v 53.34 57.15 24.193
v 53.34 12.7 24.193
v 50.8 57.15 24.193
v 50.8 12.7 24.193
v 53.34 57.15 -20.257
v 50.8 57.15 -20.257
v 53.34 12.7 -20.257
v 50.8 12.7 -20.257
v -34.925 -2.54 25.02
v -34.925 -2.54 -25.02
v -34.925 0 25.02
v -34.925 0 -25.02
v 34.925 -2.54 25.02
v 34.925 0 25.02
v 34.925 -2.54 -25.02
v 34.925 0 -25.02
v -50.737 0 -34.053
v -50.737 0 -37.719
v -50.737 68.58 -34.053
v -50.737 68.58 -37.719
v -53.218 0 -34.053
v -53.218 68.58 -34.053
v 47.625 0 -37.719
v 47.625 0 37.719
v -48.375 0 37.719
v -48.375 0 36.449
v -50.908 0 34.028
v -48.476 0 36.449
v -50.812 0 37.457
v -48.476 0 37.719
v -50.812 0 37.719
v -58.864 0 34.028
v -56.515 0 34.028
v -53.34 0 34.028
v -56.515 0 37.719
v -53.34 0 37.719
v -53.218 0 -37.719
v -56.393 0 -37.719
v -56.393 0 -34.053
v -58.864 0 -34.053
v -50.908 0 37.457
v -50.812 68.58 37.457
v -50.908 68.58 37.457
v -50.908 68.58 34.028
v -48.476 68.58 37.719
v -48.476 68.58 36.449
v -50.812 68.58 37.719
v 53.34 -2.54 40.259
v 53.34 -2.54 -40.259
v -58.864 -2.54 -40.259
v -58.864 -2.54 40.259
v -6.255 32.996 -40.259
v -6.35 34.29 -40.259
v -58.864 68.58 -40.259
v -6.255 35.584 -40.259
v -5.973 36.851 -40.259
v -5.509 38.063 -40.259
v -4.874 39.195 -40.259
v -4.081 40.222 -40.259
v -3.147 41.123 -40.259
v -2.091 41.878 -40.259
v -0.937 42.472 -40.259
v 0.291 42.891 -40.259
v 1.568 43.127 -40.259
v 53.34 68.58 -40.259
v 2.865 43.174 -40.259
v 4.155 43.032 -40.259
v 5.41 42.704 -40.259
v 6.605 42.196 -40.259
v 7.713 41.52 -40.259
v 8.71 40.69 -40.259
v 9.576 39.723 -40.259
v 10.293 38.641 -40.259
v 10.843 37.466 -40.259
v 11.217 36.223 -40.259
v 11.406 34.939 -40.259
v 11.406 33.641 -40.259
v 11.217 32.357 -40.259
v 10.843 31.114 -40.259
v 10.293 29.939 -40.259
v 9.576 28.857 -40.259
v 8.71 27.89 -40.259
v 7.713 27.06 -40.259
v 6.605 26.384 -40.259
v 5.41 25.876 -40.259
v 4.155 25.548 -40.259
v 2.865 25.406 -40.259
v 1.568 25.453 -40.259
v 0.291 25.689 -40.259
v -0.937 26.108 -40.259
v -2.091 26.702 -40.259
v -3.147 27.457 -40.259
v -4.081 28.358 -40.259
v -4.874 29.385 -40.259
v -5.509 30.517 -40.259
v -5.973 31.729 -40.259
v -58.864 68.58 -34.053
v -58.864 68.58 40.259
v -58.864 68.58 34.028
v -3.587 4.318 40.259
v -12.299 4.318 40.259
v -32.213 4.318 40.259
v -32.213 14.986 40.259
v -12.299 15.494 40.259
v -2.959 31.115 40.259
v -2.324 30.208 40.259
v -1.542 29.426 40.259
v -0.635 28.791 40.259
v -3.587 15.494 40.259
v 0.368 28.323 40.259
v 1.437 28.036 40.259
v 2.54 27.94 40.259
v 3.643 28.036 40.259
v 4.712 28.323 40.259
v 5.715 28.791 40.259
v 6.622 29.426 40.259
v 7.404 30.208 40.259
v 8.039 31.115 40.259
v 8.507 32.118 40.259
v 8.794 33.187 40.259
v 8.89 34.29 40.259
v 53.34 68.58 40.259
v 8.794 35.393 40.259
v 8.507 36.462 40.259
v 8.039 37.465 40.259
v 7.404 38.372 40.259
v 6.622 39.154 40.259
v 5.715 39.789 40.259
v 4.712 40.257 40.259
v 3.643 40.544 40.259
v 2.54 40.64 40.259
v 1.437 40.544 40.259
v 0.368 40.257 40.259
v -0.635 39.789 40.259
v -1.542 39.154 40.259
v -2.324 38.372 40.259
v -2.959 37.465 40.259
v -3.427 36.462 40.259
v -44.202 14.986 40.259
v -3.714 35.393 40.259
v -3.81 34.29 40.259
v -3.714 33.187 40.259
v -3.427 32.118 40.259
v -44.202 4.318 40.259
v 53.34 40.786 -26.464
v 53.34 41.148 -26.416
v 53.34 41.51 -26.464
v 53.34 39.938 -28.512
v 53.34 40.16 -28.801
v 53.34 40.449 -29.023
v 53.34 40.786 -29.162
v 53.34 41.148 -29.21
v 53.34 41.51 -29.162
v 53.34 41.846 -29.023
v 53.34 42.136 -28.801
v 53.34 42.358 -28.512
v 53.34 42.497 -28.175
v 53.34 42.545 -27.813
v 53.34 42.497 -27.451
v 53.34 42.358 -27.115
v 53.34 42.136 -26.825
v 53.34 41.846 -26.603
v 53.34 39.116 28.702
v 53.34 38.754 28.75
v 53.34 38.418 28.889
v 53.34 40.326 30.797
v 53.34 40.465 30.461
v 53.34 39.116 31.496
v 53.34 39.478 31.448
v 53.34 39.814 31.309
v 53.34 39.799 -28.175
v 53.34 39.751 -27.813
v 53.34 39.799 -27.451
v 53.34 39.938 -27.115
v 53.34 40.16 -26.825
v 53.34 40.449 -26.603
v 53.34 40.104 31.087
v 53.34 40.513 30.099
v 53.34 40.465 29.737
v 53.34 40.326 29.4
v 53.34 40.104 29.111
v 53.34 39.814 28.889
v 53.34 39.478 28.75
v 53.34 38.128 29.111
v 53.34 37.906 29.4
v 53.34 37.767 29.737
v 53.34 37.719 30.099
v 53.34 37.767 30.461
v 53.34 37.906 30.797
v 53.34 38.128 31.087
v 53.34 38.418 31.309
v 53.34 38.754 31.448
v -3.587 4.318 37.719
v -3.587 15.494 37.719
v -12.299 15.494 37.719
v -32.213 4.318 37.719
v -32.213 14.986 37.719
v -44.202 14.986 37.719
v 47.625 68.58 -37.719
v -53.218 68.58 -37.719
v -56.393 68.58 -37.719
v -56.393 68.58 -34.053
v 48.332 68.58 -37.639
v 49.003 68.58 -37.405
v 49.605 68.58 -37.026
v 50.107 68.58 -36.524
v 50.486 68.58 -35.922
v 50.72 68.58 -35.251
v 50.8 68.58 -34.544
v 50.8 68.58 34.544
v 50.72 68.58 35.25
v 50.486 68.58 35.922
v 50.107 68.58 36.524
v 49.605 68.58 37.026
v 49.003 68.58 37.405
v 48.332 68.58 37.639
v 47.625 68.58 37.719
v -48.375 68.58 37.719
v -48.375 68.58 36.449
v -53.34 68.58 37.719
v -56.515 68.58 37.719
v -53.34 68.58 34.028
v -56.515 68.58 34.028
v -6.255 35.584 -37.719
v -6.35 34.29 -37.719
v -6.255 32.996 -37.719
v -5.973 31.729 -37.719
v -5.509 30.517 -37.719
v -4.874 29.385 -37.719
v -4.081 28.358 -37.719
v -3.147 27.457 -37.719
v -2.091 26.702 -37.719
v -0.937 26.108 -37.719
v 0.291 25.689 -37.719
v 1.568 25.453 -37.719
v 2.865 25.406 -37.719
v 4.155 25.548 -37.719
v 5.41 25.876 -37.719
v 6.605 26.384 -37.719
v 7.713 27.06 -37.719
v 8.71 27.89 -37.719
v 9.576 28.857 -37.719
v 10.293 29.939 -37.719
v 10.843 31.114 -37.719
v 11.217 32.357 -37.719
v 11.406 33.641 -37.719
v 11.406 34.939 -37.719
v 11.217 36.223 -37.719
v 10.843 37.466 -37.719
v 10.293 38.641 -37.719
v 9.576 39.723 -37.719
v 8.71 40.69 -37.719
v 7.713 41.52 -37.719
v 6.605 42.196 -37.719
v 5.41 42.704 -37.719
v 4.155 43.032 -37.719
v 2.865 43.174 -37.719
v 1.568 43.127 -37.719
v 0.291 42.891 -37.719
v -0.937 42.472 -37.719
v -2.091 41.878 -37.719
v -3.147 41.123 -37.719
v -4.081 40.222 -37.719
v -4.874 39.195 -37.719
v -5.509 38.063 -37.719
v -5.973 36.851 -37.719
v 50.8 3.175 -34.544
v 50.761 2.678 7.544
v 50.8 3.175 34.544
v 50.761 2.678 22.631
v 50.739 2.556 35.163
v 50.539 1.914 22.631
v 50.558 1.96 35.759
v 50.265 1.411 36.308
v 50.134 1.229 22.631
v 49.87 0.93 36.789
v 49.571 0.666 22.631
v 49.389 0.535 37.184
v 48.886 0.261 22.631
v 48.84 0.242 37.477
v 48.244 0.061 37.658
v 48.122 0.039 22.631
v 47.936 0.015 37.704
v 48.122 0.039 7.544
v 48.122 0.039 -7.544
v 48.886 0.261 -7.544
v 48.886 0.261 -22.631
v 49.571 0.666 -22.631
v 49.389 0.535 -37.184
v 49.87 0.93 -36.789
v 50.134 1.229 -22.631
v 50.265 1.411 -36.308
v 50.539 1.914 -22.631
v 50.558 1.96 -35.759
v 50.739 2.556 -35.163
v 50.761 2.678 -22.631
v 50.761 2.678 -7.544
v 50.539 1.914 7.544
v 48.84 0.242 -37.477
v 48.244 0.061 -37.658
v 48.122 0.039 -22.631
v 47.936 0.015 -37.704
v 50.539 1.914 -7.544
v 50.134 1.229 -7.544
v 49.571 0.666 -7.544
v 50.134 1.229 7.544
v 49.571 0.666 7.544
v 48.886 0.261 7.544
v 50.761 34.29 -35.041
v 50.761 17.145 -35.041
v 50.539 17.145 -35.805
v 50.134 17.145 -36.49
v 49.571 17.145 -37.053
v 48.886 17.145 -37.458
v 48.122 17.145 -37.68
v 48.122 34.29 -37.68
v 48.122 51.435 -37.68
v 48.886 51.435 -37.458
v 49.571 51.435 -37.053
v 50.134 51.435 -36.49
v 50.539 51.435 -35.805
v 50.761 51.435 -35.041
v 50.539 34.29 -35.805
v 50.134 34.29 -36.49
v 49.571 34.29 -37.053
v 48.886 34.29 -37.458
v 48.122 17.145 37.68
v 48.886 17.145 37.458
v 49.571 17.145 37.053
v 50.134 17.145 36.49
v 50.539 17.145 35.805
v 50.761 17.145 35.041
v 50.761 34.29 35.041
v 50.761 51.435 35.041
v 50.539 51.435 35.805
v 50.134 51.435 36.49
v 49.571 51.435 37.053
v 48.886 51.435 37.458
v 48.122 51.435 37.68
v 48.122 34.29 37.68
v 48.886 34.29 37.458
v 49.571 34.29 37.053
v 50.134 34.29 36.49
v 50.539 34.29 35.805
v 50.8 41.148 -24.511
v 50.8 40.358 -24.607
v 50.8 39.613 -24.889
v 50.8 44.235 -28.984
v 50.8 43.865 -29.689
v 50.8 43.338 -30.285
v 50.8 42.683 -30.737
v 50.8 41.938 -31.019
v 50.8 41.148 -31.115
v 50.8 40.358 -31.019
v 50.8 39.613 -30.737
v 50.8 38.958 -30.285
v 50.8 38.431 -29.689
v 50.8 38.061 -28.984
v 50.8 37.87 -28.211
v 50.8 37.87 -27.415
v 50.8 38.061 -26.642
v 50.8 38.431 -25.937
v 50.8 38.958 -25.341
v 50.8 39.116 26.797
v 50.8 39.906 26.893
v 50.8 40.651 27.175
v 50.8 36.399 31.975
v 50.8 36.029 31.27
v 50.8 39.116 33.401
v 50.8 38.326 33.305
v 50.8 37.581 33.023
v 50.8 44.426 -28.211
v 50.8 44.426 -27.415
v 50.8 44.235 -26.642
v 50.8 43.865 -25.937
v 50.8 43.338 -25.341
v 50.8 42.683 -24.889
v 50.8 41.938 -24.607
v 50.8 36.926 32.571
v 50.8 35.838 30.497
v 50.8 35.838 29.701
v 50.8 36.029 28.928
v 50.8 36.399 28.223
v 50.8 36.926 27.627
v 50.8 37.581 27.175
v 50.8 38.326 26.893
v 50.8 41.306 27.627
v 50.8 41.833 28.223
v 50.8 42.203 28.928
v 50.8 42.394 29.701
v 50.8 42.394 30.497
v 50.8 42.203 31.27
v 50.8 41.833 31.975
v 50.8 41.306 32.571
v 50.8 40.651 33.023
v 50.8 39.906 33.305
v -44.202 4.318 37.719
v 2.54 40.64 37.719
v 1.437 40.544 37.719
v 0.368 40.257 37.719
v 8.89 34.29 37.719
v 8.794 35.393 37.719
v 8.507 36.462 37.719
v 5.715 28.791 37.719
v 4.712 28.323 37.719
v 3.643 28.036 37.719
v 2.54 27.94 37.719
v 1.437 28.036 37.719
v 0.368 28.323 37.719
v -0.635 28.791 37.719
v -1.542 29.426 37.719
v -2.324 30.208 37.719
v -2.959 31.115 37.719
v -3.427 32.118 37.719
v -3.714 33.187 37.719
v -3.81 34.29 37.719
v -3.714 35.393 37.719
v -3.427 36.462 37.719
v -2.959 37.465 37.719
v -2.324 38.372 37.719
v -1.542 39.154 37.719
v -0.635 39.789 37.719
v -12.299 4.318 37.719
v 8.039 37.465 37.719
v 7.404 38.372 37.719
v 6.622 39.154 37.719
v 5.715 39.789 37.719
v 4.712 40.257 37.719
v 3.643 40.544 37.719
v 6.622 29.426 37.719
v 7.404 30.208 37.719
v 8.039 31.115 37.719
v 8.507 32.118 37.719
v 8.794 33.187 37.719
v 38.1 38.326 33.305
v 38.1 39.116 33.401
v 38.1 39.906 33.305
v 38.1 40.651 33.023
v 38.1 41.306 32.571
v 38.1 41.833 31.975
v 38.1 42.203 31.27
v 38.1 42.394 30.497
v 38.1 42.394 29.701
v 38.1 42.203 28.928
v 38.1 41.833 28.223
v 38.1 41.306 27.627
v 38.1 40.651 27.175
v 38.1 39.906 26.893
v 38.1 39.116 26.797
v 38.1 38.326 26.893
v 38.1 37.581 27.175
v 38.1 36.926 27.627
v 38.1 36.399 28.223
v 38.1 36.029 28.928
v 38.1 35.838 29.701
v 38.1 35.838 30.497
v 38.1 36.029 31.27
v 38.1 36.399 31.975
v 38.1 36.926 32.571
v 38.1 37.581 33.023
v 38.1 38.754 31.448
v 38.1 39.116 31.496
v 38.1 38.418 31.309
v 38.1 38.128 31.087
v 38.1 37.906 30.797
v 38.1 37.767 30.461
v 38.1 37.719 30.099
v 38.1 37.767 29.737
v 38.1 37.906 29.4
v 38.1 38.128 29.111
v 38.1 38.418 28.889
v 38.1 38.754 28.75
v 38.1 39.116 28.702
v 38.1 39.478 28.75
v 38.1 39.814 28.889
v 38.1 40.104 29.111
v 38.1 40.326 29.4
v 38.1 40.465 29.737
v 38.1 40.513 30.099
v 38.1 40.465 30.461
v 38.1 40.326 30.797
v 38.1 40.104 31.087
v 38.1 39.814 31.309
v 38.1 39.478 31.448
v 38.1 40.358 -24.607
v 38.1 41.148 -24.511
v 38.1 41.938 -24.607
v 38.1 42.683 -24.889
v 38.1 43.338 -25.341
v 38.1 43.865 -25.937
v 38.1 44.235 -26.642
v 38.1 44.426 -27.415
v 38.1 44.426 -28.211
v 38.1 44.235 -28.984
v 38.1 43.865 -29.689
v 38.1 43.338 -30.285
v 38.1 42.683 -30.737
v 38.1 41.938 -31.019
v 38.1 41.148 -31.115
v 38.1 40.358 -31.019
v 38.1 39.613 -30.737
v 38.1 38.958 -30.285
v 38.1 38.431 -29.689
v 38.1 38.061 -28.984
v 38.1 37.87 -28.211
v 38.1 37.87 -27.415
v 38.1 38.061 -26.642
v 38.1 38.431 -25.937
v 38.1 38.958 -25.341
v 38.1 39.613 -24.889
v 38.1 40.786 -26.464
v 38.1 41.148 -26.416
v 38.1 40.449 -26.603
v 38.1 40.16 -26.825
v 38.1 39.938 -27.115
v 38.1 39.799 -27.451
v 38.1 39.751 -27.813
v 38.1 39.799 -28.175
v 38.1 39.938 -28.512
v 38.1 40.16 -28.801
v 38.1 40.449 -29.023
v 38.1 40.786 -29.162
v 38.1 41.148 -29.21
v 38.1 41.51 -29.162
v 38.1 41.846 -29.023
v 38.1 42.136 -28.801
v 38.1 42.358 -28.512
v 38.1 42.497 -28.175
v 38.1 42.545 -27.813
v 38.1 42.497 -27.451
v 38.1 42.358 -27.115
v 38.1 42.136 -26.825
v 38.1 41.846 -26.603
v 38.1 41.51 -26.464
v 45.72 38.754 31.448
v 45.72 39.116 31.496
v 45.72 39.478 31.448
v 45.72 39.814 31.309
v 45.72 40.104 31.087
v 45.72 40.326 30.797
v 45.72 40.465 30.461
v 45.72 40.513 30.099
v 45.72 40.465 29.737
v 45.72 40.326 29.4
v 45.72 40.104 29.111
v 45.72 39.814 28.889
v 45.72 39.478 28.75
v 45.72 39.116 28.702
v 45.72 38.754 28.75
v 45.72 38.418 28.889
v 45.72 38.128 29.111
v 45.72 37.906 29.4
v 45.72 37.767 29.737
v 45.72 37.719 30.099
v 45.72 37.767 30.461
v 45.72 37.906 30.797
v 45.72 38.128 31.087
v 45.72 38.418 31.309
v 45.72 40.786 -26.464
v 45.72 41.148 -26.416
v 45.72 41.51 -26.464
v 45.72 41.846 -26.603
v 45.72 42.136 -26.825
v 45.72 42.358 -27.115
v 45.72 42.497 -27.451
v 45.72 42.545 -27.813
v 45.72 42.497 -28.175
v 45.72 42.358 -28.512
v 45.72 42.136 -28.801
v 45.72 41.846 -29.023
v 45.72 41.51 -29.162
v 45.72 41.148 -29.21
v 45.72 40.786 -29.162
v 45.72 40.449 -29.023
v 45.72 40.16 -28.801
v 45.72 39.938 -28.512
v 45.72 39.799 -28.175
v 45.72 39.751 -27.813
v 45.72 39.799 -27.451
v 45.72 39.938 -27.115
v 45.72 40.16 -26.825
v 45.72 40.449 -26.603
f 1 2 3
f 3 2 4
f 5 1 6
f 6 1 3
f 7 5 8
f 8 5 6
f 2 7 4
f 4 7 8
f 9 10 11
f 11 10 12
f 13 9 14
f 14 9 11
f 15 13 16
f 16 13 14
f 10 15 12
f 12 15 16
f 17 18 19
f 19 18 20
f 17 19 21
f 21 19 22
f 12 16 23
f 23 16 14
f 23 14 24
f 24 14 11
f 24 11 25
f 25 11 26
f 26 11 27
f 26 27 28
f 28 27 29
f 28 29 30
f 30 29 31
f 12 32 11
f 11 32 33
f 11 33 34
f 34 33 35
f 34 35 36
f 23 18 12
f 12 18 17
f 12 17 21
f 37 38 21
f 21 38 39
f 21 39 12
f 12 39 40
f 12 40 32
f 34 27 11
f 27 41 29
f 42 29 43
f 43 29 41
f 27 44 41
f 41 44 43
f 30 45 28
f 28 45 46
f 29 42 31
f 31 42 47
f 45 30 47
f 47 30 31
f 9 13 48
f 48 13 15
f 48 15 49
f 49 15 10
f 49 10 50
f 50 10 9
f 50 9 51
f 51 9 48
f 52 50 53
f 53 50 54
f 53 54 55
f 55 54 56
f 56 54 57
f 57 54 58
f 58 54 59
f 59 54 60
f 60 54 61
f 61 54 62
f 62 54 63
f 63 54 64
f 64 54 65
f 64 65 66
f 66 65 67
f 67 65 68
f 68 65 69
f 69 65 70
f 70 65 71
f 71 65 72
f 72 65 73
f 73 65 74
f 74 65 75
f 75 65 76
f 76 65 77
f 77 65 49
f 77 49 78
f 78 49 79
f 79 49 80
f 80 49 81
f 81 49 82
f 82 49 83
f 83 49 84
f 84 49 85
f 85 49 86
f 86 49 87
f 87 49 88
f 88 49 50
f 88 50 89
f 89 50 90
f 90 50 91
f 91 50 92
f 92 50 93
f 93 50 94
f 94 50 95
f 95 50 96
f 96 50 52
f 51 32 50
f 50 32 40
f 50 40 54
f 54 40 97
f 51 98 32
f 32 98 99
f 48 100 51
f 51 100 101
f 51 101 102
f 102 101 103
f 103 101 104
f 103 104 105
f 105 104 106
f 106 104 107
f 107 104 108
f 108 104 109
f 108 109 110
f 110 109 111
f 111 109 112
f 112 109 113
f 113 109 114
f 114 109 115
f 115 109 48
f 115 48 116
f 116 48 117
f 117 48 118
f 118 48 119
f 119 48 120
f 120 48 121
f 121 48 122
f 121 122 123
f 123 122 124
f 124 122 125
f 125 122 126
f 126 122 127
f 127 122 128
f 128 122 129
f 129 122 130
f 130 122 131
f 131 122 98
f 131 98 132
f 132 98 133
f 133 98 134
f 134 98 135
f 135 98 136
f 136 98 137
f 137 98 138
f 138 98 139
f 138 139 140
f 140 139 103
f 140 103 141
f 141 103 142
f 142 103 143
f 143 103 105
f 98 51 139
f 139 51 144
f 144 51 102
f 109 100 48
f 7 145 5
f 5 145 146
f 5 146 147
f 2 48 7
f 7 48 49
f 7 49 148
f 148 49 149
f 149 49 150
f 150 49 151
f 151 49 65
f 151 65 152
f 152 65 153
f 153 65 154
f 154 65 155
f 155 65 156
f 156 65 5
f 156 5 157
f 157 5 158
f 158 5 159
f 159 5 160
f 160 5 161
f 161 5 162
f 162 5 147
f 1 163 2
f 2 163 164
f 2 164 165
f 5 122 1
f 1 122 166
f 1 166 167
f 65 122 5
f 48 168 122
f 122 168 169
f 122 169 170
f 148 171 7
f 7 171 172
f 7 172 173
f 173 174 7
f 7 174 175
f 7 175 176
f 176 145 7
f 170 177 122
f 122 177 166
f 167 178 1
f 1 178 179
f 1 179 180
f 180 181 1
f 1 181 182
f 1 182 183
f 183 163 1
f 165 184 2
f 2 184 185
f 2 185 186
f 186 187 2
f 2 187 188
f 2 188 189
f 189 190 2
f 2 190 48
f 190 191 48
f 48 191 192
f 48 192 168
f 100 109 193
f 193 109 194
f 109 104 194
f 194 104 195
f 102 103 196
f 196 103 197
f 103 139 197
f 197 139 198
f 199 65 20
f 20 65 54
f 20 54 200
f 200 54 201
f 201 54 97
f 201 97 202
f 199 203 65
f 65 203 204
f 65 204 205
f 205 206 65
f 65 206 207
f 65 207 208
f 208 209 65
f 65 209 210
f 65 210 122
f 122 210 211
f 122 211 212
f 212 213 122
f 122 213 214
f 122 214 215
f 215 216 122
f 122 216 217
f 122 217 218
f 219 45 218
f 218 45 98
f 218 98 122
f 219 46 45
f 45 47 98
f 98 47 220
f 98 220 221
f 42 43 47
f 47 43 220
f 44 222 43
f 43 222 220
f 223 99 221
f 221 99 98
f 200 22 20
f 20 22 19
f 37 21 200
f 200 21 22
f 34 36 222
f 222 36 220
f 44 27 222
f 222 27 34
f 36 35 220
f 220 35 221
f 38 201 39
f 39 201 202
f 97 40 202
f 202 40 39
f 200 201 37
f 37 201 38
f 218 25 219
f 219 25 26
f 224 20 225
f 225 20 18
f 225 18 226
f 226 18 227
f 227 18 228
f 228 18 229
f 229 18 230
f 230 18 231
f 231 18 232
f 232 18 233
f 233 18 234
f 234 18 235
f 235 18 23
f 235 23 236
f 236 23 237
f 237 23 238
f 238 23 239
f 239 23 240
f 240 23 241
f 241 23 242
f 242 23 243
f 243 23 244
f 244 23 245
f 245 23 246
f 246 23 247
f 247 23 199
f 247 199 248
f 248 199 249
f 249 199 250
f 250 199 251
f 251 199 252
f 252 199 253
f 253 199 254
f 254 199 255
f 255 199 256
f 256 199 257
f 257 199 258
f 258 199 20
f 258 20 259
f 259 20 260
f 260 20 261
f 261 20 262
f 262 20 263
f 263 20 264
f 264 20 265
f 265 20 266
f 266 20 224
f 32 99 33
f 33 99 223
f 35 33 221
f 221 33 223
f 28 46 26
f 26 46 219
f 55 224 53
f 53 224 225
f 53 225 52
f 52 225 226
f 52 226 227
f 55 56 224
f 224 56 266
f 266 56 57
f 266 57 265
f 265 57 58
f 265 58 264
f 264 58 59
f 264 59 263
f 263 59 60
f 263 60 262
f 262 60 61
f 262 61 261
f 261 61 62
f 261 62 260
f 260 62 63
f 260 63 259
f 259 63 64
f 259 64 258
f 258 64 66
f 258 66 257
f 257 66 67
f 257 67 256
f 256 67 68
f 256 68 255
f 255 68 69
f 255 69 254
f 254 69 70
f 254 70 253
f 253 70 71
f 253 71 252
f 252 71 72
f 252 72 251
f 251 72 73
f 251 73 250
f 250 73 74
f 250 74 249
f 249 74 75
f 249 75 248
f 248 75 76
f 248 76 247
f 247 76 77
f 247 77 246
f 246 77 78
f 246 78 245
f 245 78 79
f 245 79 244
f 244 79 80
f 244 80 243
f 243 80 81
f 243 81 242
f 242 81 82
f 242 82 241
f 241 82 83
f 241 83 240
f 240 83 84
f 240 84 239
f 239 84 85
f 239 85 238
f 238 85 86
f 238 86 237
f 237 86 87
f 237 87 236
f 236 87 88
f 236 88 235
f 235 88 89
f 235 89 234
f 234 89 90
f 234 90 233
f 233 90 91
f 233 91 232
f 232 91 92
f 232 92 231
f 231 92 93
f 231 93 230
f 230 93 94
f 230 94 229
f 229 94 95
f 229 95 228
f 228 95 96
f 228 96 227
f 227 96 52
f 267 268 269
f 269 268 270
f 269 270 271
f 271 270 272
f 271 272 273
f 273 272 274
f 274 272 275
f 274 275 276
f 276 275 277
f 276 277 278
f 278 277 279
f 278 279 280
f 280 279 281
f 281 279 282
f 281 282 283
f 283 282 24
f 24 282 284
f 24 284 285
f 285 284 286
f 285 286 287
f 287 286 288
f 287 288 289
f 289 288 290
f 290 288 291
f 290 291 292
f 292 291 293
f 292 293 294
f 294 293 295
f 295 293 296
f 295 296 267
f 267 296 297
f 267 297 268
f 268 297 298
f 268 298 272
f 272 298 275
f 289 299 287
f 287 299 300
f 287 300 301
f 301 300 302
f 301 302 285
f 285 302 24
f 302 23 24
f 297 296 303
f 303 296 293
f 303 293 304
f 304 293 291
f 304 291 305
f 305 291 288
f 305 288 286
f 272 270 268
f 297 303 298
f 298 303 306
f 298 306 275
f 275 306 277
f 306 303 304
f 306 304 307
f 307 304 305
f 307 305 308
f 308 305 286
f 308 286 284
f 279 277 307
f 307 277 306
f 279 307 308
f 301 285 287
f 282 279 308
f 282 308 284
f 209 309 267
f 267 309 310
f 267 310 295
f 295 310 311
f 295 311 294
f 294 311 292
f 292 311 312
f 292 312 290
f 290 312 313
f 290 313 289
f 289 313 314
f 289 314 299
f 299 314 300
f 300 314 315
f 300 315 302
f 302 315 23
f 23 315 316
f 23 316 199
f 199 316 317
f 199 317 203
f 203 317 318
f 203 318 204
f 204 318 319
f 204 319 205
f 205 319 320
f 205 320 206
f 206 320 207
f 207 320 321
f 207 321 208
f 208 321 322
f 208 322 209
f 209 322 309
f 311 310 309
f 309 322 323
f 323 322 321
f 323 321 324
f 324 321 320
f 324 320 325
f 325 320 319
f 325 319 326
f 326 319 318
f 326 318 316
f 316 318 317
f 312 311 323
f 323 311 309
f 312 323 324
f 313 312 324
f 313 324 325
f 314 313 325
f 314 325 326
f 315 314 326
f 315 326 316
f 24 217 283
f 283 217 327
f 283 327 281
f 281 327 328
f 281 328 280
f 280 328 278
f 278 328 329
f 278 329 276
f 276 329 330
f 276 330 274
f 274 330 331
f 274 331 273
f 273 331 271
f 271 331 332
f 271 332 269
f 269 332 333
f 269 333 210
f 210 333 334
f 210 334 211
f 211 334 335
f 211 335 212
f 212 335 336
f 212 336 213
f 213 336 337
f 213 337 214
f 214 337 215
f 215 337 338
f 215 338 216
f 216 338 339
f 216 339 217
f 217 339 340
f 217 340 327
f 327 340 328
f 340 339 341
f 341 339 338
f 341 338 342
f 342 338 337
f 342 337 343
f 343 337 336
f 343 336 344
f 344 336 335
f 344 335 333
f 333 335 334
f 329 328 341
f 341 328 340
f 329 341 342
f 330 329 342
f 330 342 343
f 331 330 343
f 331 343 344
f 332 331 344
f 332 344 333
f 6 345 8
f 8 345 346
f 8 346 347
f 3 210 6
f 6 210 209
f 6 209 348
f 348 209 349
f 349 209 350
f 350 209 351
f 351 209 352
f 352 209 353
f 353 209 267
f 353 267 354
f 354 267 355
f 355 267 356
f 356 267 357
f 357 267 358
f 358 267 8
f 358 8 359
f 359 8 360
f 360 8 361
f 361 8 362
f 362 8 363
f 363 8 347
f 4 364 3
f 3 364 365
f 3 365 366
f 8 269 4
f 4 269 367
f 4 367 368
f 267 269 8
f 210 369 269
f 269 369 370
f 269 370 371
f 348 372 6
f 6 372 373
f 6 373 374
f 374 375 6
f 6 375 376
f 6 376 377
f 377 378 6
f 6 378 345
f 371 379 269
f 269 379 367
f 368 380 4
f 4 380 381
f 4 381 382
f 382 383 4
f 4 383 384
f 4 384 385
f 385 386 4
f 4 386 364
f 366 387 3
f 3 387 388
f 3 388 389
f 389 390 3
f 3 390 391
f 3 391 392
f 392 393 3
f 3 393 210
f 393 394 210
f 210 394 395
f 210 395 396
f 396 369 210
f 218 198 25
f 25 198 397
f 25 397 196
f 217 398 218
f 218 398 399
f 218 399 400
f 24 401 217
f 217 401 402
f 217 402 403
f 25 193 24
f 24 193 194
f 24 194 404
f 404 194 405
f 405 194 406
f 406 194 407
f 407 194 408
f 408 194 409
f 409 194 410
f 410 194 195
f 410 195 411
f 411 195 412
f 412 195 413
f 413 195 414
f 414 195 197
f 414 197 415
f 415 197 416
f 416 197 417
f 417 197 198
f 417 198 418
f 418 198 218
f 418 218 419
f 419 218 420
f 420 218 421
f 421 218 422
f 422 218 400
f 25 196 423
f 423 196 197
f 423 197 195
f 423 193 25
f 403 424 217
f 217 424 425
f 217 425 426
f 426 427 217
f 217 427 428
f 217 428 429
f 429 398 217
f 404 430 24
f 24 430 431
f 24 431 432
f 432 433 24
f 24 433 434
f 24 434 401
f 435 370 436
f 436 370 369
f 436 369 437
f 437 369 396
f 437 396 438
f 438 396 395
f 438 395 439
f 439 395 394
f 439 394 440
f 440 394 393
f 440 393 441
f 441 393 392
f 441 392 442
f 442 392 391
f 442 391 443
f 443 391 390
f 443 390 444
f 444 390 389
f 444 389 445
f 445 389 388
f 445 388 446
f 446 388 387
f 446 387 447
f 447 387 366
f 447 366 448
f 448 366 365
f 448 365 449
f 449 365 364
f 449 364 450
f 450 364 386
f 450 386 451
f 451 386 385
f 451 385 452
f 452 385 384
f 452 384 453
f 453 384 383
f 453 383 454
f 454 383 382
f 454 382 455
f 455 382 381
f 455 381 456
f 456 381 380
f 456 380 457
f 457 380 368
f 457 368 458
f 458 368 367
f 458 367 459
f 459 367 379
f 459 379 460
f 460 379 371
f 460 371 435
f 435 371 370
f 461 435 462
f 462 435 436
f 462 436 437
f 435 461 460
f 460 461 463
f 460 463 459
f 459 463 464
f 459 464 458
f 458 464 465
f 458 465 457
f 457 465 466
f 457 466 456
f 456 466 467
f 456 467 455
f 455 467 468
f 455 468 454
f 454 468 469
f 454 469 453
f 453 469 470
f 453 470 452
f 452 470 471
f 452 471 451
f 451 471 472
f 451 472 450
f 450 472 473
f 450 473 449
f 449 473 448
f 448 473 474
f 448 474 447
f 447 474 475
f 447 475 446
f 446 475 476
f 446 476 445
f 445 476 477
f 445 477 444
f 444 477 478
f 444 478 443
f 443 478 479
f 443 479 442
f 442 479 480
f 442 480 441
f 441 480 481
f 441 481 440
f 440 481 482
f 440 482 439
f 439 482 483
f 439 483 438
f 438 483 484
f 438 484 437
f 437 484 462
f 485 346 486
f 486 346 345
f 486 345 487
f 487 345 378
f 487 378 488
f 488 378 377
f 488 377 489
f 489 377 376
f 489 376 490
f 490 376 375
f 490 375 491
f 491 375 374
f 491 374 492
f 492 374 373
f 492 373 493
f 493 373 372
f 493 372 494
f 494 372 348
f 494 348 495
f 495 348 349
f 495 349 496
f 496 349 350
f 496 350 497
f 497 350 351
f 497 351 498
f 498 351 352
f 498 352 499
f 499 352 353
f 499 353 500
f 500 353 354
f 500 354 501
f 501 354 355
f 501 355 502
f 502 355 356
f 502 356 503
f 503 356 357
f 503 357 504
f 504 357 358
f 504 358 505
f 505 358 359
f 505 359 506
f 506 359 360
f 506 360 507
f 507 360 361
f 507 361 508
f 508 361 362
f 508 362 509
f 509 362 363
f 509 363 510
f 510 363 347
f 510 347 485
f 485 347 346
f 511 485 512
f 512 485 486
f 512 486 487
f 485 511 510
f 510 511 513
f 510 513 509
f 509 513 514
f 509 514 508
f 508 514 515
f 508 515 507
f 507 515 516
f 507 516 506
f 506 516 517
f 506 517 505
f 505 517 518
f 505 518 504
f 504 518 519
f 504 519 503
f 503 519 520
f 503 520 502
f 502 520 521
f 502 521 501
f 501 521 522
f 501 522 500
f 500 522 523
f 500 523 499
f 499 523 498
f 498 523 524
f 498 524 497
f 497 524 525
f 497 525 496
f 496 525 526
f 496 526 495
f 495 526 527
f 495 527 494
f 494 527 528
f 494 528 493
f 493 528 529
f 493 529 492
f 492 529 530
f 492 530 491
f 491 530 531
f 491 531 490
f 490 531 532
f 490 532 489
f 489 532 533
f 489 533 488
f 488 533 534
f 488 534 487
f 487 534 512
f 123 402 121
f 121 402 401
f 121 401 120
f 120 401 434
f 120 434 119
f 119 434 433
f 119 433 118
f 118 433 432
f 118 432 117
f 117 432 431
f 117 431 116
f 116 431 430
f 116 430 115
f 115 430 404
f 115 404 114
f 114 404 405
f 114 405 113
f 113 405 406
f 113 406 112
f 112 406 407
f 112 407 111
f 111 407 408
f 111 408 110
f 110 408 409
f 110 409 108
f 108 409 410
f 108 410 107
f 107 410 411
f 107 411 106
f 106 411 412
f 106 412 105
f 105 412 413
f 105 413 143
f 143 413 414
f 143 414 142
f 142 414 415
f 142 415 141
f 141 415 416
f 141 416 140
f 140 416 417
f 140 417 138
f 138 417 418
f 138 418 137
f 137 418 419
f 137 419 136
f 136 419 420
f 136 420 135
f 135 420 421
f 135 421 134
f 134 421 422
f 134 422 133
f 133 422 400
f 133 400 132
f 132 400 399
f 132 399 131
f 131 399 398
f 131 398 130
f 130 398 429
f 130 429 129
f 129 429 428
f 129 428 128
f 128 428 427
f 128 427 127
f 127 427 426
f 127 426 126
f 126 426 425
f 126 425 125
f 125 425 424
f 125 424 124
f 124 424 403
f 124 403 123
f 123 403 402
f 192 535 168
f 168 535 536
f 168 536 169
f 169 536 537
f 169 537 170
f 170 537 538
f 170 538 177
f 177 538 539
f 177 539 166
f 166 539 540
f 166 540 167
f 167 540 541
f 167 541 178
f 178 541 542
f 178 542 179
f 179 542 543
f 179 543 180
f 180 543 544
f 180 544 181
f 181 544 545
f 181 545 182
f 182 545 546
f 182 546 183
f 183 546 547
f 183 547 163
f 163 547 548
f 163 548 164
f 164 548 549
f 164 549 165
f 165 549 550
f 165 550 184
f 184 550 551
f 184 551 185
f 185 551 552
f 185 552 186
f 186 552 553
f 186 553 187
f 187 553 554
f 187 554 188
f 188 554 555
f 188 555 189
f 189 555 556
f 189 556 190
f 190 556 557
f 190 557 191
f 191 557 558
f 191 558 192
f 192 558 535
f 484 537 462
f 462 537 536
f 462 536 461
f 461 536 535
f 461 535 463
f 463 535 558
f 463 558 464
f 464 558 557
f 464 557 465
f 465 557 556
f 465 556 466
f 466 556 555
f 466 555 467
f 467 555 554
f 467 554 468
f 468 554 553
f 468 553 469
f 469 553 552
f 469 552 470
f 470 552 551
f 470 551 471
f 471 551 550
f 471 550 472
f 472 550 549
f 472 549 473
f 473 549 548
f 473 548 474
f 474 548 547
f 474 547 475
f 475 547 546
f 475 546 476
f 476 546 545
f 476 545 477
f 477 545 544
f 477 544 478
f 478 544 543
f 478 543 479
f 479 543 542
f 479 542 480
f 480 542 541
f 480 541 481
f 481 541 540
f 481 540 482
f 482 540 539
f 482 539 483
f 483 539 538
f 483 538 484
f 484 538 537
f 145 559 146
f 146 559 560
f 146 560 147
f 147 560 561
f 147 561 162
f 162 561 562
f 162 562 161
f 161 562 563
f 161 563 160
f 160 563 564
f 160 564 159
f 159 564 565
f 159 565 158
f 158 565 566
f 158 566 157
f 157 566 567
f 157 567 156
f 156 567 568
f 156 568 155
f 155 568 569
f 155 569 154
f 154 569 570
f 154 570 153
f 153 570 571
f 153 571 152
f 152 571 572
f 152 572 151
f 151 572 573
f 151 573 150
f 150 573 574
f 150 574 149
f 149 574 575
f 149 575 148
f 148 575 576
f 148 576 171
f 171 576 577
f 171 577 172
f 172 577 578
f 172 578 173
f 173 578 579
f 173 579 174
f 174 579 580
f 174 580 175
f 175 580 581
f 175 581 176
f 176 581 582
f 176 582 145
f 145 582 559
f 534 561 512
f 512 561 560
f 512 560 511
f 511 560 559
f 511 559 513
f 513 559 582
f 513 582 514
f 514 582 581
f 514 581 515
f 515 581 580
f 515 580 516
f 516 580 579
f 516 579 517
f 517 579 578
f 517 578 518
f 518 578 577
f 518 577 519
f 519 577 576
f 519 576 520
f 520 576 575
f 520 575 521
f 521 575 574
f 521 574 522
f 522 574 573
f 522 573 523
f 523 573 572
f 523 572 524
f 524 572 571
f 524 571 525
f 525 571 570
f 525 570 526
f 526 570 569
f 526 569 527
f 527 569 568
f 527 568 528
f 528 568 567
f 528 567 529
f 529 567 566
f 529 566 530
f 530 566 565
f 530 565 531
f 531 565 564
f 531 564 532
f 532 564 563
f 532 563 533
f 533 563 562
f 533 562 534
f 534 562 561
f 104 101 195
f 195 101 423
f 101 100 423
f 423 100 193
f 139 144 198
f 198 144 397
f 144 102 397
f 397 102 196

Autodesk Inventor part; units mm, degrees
ref_plane "YZ Plane" through (0, 0, 0) normal (1, 0, 0) x (0, 1, 0)
ref_plane "XZ Plane" through (0, 0, 0) normal (0, 1, 0) x (-1, 0, 0)
ref_plane "XY Plane" through (0, 0, 0) normal (0, 0, 1) x (1, 0, 0)
sketch "Sketch1" plane through (0, 0, 0) normal (0, 1, 0) x (-1, 0, 0)
  line L0 (50.8, 37.719) -> (-50.8, 37.719)
  line L1 (-50.8, 37.719) -> (-50.8, -37.719)
  line L2 (-50.8, -37.719) -> (50.8, -37.719)
  line L3 (50.8, -37.719) -> (50.8, 37.719)
  line L4 (50.8, 37.719) -> (-50.8, -37.719) construction
  line L5 (-50.8, 37.719) -> (50.8, -37.719) construction
  line L6 (56.515, 43.434) -> (-56.515, 43.434)
  line L7 (-56.515, 43.434) -> (-56.515, -43.434)
  line L8 (-56.515, -43.434) -> (56.515, -43.434)
  line L9 (56.515, -43.434) -> (56.515, 43.434)
  line L10 (56.515, 43.434) -> (-56.515, -43.434) construction
  line L11 (-56.515, 43.434) -> (56.515, -43.434) construction
  point P0 (0, 0)
  dimension "d0" = 101.6
  dimension "d1" = 75.438
  dimension "d2" = 113.03
  dimension "d3" = 86.868
extrude "Extrusion1" add sketch "Sketch1" along normal blind 68.58
sketch "Sketch2" plane through (0, 0, 0) normal (0, -1, 0) x (1, 0, 0)
  line L0 (-50.8, 37.719) -> (50.8, 37.719) projected
  line L1 (-50.8, 37.719) -> (-41.656, 37.719)
  line L2 (-50.8, 37.719) -> (-50.8, -37.719) projected
  line L3 (-41.656, 37.719) -> (-50.8, 37.719)
  line L4 (-50.8, 37.719) -> (-41.656, 37.719)
  point P0 (0, 0)
  dimension "d6" = 9.144
sketch "Sketch3" plane through (-56.515, 0, 43.434) normal (0, 0, 1) x (1, 0, 0)
  line L0 (12.3133, 0) -> (12.3133, 10.668)
  line L1 (12.3133, 10.668) -> (12.3133, 14.986)
  line L2 (12.3133, 14.986) -> (24.3021, 14.986)
  line L3 (24.3021, 14.986) -> (24.3021, 4.318)
  line L4 (24.3021, 4.318) -> (12.3133, 4.318)
  line L5 (0, 0) -> (113.03, 0) projected
  line L6 (24.3021, 4.318) -> (44.2157, 4.318)
  line L7 (44.2157, 4.318) -> (44.2157, 15.494)
  line L8 (44.2157, 15.494) -> (52.9279, 15.494)
  line L9 (52.9279, 15.494) -> (52.9279, 4.318)
  line L10 (52.9279, 4.318) -> (44.2157, 4.318)
  point P0 (56.515, 0)
  dimension "d7" = 10.668
  dimension "d8" = 4.318
  dimension "d9" = 11.9888
  dimension "d10" = 10.668
  dimension "d11" = 19.9136
  dimension "d12" = 11.176
  dimension "d13" = 8.7122
extrude "Extrusion2" cut sketch "Sketch3" against normal blind 68.58
sketch "Sketch4" plane through (50.8, 0, 37.719) normal (-1, 0, 0) x (0, 0, 1)
  line L0 (0, 0) -> (-75.438, 0) projected
  line L1 (-75.438, 0) -> (-34.29, 0)
  line L2 (-34.29, 0) -> (-75.438, 0)
  line L3 (-75.438, 0) -> (-75.438, 68.58) projected
  line L4 (-75.438, 0) -> (-75.438, 41.148)
  line L5 (-75.438, 41.148) -> (-65.532, 41.148)
  line L6 (-65.532, 41.148) -> (-75.438, 41.148)
  line L7 (0, 0) -> (0, 68.58) projected
  line L8 (0, 68.58) -> (0, 39.116)
  line L9 (0, 39.116) -> (0, 46.736)
  line L10 (0, 46.736) -> (0, 39.116)
  line L11 (0, 39.116) -> (-7.62, 39.116)
  line L12 (-7.62, 39.116) -> (0, 39.116)
  circle A0 centre (-7.62, 39.116) radius 1.397
  circle A1 centre (-65.532, 41.148) radius 1.397
  point P0 (-37.719, 0)
  dimension "d16" = 41.148
  dimension "d17" = 41.148
  dimension "d18" = 9.906
  dimension "d19" = 29.464
  dimension "d20" = 7.62
  dimension "d21" = 7.62
  dimension "d22" = 2.794
  dimension "d23" = 2.794
extrude "Extrusion3" cut sketch "Sketch4" against normal blind 68.58
sketch "Sketch5" plane through (-56.515, 0, 43.434) normal (0, 0, 1) x (1, 0, 0)
  point P0 (56.515, 0)
sketch "Sketch6" plane through (-56.515, 0, 43.434) normal (0, 0, 1) x (1, 0, 0)
  line L0 (0, 0) -> (0, 68.58) projected
  line L1 (113.03, 0) -> (113.03, 68.58) projected
  line L2 (0, 68.58) -> (113.03, 0)
  line L3 (113.03, 0) -> (0, 68.58)
  line L4 (0, 68.58) -> (113.03, 68.58) projected
  line L5 (113.03, 68.58) -> (5.08, 0)
  line L6 (5.08, 0) -> (113.03, 68.58)
  circle A0 centre (59.055, 34.29) radius 6.35
  point P0 (56.515, 0)
  dimension "d26" = 12.7
extrude "Extrusion4" cut sketch "Sketch6" against normal blind 109.855 contours A0 L5 L2 | L2 L5 A0 | L5 L2 A0 | L5 A0 L2
sketch "Sketch7" plane through (0, 0, 0) normal (0, -1, 0) x (1, 0, 0)
  line L0 (-56.515, 43.434) -> (56.515, 43.434) projected
  line L1 (56.515, 43.434) -> (56.515, -43.434) projected
  line L2 (-56.515, 43.434) -> (56.515, 43.434)
  line L3 (56.515, 43.434) -> (56.515, -43.434)
  line L4 (56.515, -43.434) -> (-56.515, -43.434)
  line L5 (-56.515, -43.434) -> (-56.515, 43.434)
  point P0 (0, 0)
extrude "Extrusion5" add sketch "Sketch7" along normal blind 5.08
sketch "Sketch9" plane through (0, 68.58, 0) normal (0, 1, 0) x (1, 0, 0)
  point P0 (0, 0)
sketch "Sketch10" plane through (50.8, 68.58, -37.719) normal (-1, 0, 0) x (0, 0, 1)
  circle A0 centre (67.818, -29.464) radius 1.397 projected
  circle A1 centre (67.818, -29.464) radius 3.302
  circle A2 centre (9.906, -27.432) radius 1.397 projected
  circle A3 centre (9.906, -27.432) radius 3.302
  point P0 (37.719, -68.58)
  dimension "d36" = 6.604
  dimension "d37" = 6.604
extrude "Extrusion7" add sketch "Sketch10" along normal blind 12.7
sketch "Sketch11" plane through (-56.515, 68.58, -43.434) normal (-1, 0, 0) x (0, 0, 1)
  line L0 (5.715, -68.58) -> (5.715, 0) projected
  line L1 (81.153, -68.58) -> (81.153, 0) projected
  line L2 (5.715, 0) -> (81.153, 0)
  line L3 (81.153, 0) -> (81.153, -68.58)
  line L4 (81.153, -68.58) -> (5.715, -68.58)
  line L5 (5.715, -68.58) -> (5.715, 0)
  point P0 (43.434, -68.58)
extrude "Extrusion8" cut sketch "Sketch11" against normal blind 12.7
fillet "Fillet2" radius 3.175 3 edges at (50.8, 34.29, -37.719) (50.8, 0, 0) (50.8, 34.29, 37.719)
sketch "Sketch12" plane through (56.515, 68.58, -43.434) normal (0, 0, -1) x (-1, 0, 0)
  circle A0 centre (53.975, -34.29) radius 4.445
  circle A1 centre (53.975, -34.29) radius 8.89
  circle A2 centre (53.975, -34.29) radius 6.35 projected
  point P0 (56.515, -68.58)
  dimension "d43" = 8.89
  dimension "d44" = 17.78
extrude "Extrusion9" cut sketch "Sketch12" against normal blind 12.7 contours A1
sketch "Sketch13" plane through (0, 0, 0) normal (0, 1, 0) x (1, 0, 0)
  line L0 (-56.515, 37.719) -> (47.625, 37.719) projected
  line L1 (-50.7189, 37.719) -> (-49.9627, 37.719)
  line L2 (-49.9627, 37.719) -> (-49.9627, 36.449)
  line L3 (-49.9627, 36.449) -> (-50.7189, 36.449)
  line L4 (-50.7189, 36.449) -> (-50.7189, 37.719)
  line L5 (-56.515, -37.719) -> (47.625, -37.719) projected
  line L6 (-50.7189, -37.719) -> (-49.9627, -37.719)
  line L7 (-49.9627, -37.719) -> (-49.9627, -36.449)
  line L8 (-49.9627, -36.449) -> (-50.7189, -36.449)
  line L9 (-50.7189, -36.449) -> (-50.7189, -37.719)
  point P0 (0, 0)
  dimension "d47" = 1.27
  dimension "d48" = 1.27
extrude "Extrusion10" add sketch "Sketch13" along normal blind 68.58
sketch "Sketch14" plane through (-56.515, -5.08, -43.434) normal (-1, 0, 0) x (0, 0, 1)
  point P0 (43.434, 5.08)
sketch "Sketch15" plane through (-56.515, -5.08, -43.434) normal (-1, 0, 0) x (0, 0, 1)
  line L0 (0, 73.66) -> (5.715, 73.66) projected
  line L1 (86.868, 0) -> (0, 0) projected
  line L2 (0, 73.66) -> (4.5789, 73.66)
  line L3 (4.5789, 73.66) -> (4.5789, 0)
  line L4 (4.5789, 0) -> (0, 0)
  line L5 (0, 0) -> (0, 73.66)
  line L6 (81.153, 73.66) -> (86.868, 73.66) projected
  line L7 (86.868, 73.66) -> (77.4615, 73.66)
  line L8 (77.4615, 73.66) -> (77.4615, 0)
  line L9 (77.4615, 0) -> (86.868, 0)
  line L10 (86.868, 0) -> (86.868, 73.66)
  line L11 (4.5789, 0) -> (77.4615, 0)
  line L12 (77.4615, 0) -> (77.4615, 5.08)
  line L13 (77.4615, 5.08) -> (4.5789, 5.08)
  line L14 (4.5789, 5.08) -> (4.5789, 0)
  point P0 (43.434, 5.08)
extrude "Extrusion11" add sketch "Sketch15" along normal blind 0.762
sketch "Sketch16" plane through (-57.277, -5.08, -43.434) normal (-1, 0, 0) x (0, 0, 1)
  line L0 (0, 0) -> (86.868, 0) projected
  line L1 (0, 73.66) -> (4.5551, 73.66)
  line L2 (4.5551, 73.66) -> (4.5551, 0)
  line L3 (4.5551, 0) -> (0, 0)
  line L4 (0, 0) -> (0, 73.66)
  line L5 (86.868, 73.66) -> (77.4615, 73.66) projected
  line L6 (86.868, 0) -> (86.868, 73.66) projected
  line L7 (77.4615, 73.66) -> (86.868, 73.66)
  line L8 (86.868, 73.66) -> (86.868, 0)
  line L9 (86.868, 0) -> (77.4615, 0)
  line L10 (77.4615, 0) -> (77.4615, 73.66)
  line L11 (79.883, 5.08) -> (81.153, 5.08) projected
  line L12 (79.883, 5.08) -> (4.5551, 5.08)
  line L13 (4.5551, 5.08) -> (4.5551, 0)
  line L14 (4.5551, 0) -> (79.883, 0)
  line L15 (79.883, 0) -> (79.883, 5.08)
  point P0 (43.434, 5.08)
extrude "Extrusion12" add sketch "Sketch16" along normal blind 1.5875
sketch "Sketch17" plane through (-49.9627, 0, 36.449) normal (1, 0, 0) x (0, 0, -1)
  line L0 (-1.27, 68.58) -> (0, 68.58) projected
  line L1 (0, 68.58) -> (-1.27, 68.58)
  line L2 (-1.27, 68.58) -> (-1.27, 0)
  line L3 (-1.27, 0) -> (0, 0)
  line L4 (0, 0) -> (0, 68.58)
  line L5 (74.168, 0) -> (72.898, 0) projected
  line L6 (72.898, 0) -> (72.898, 68.58) projected
  line L7 (74.168, 0) -> (72.898, 0)
  line L8 (72.898, 0) -> (72.898, 68.58)
  line L9 (72.898, 68.58) -> (74.168, 68.58)
  line L10 (74.168, 68.58) -> (74.168, 0)
  point P0 (36.449, 0)
extrude "Extrusion13" add sketch "Sketch17" along normal blind 1.5875
sketch "Sketch18" plane through (-50.7189, 0, -36.449) normal (-1, 0, 0) x (0, 0, 1)
  point P0 (36.449, 0)
sketch "Sketch19" plane through (-57.277, 0, -38.8789) normal (0, 0, 1) x (1, 0, 0)
  line L0 (-1.5875, 68.58) -> (-1.5875, -5.08) projected
  line L1 (-1.5875, 68.58) -> (0.8838, 68.58)
  line L2 (0.8838, 68.58) -> (0.8838, 0)
  line L3 (0.8838, 0) -> (-1.5875, 0)
  line L4 (-1.5875, 0) -> (-1.5875, 68.58)
  point P0 (57.277, 0)
extrude "Extrusion14" add sketch "Sketch19" along normal blind 4.826
sketch "Sketch20" plane through (0, 68.58, 0) normal (0, 1, 0) x (1, 0, 0)
  point P0 (0, 0)
sketch "Sketch21" plane through (0, 0, 0) normal (0, 1, 0) x (1, 0, 0)
  line L0 (-56.515, -37.719) -> (-56.515, -34.0275) projected
  line L1 (-56.515, -37.719) -> (-53.34, -37.719)
  line L2 (-50.7189, -37.719) -> (-56.515, -37.719) projected
  line L3 (-53.34, -37.719) -> (-56.515, -37.719)
  line L4 (-56.3932, 37.719) -> (-56.3932, 34.0529) projected
  line L5 (-56.3932, 37.719) -> (-53.2182, 37.719)
  line L6 (-56.3932, 37.719) -> (-50.7189, 37.719) projected
  line L7 (-53.2182, 37.719) -> (-56.3932, 37.719)
  line L8 (-53.2182, 37.719) -> (-48.4756, 37.719)
  line L9 (-48.4756, 37.719) -> (-48.4756, 34.0529)
  line L10 (-48.4756, 34.0529) -> (-53.2182, 34.0529)
  line L11 (-53.2182, 34.0529) -> (-53.2182, 37.719)
  line L12 (-53.34, -37.719) -> (-48.4756, -37.719)
  line L13 (-48.4756, -37.719) -> (-48.4756, -34.0275)
  line L14 (-48.4756, -34.0275) -> (-53.34, -34.0275)
  line L15 (-53.34, -34.0275) -> (-53.34, -37.719)
  point P0 (0, 0)
  dimension "d59" = 3.175
  dimension "d60" = 3.175
extrude "Extrusion15" add sketch "Sketch21" along normal blind 68.58
sketch "Sketch22" plane through (56.515, 68.58, 43.434) normal (1, 0, 0) x (0, 0, -1)
  line L0 (-54.4195, 28.575) -> (141.2875, 28.575)
  line L1 (141.2875, 28.575) -> (141.2875, -95.25)
  line L2 (141.2875, -95.25) -> (-54.4195, -95.25)
  line L3 (-54.4195, -95.25) -> (-54.4195, 28.575)
  line L4 (-54.4195, 28.575) -> (141.2875, -95.25) construction
  line L5 (141.2875, 28.575) -> (-54.4195, -95.25) construction
  point P0 (43.434, -68.58)
  point P1 (43.434, -33.3375)
extrude "Extrusion16" cut sketch "Sketch22" against normal blind 3.175
sketch "Sketch23" plane through (-58.8645, -5.08, -43.434) normal (0, 0, -1) x (-1, 0, 0)
  line L0 (38.1, 96.8375) -> (-133.35, 96.8375)
  line L1 (-133.35, 96.8375) -> (-133.35, -20.6375)
  line L2 (-133.35, -20.6375) -> (38.1, -20.6375)
  line L3 (38.1, -20.6375) -> (38.1, 96.8375)
  line L4 (38.1, 96.8375) -> (-133.35, -20.6375) construction
  line L5 (-133.35, 96.8375) -> (38.1, -20.6375) construction
  point P0 (-58.8645, 5.08)
  point P1 (-47.625, 38.1)
extrude "Extrusion17" cut sketch "Sketch23" against normal blind 3.175
sketch "Sketch24" plane through (-58.8645, -5.08, 43.434) normal (0, 0, 1) x (1, 0, 0)
  line L0 (-38.1, -30.1625) -> (130.175, -30.1625)
  line L1 (130.175, -30.1625) -> (130.175, 109.5375)
  line L2 (130.175, 109.5375) -> (-38.1, 109.5375)
  line L3 (-38.1, 109.5375) -> (-38.1, -30.1625)
  line L4 (-38.1, -30.1625) -> (130.175, 109.5375) construction
  line L5 (130.175, -30.1625) -> (-38.1, 109.5375) construction
  point P0 (58.8645, 5.08)
  point P1 (46.0375, 39.6875)
extrude "Extrusion18" cut sketch "Sketch24" against normal blind 3.175
sketch "Sketch25" plane through (0, -5.08, 0) normal (0, -1, 0) x (1, 0, 0)
  line L0 (73.025, 84.1375) -> (-73.025, 84.1375)
  line L1 (-73.025, 84.1375) -> (-73.025, -84.1375)
  line L2 (-73.025, -84.1375) -> (73.025, -84.1375)
  line L3 (73.025, -84.1375) -> (73.025, 84.1375)
  line L4 (73.025, 84.1375) -> (-73.025, -84.1375) construction
  line L5 (-73.025, 84.1375) -> (73.025, -84.1375) construction
  point P0 (0, 0)
extrude "Extrusion19" cut sketch "Sketch25" against normal blind 2.54
sketch "Sketch26" plane through (-48.4756, 0, 36.449) normal (1, 0, 0) x (0, 0, -1)
  line L0 (0, 68.58) -> (-1.27, 68.58) projected
  line L1 (2.3883, 0) -> (-1.27, 0)
  line L2 (-1.27, 0) -> (-1.27, 68.58)
  line L3 (-1.27, 68.58) -> (2.3883, 68.58)
  line L4 (2.3883, 68.58) -> (2.3883, 0)
  point P0 (36.449, 0)
extrude "Extrusion20" cut sketch "Sketch26" against normal blind 2.3368
sketch "Sketch27" plane through (-48.4756, 0, 34.0275) normal (0, 0, -1) x (-1, 0, 0)
  line L0 (4.8644, 0) -> (0, 0) projected
  line L1 (0, 0) -> (0, 68.58) projected
  line L2 (2.4322, 0) -> (0, 0)
  line L3 (0, 0) -> (0, 68.58)
  line L4 (0, 68.58) -> (2.4322, 68.58)
  line L5 (2.4322, 68.58) -> (2.4322, 0)
  point P0 (-48.4756, 0)
extrude "Extrusion21" cut sketch "Sketch27" against normal blind 3.429
sketch "Sketch28" plane through (-48.3752, 0, 36.449) normal (1, 0, 0) x (0, 0, -1)
  line L0 (74.168, 0) -> (72.898, 0) projected
  line L1 (70.5019, 68.58) -> (72.898, 68.58) projected
  line L2 (74.168, 0) -> (70.5019, 0)
  line L3 (70.5019, 0) -> (70.5019, 68.58)
  line L4 (70.5019, 68.58) -> (74.168, 68.58)
  line L5 (74.168, 68.58) -> (74.168, 0)
  point P0 (36.449, 0)
extrude "Extrusion22" cut sketch "Sketch28" against normal blind 2.3622
sketch "Sketch29" plane through (0, 0, 0) normal (0, 1, 0) x (1, 0, 0)
  line L0 (-44.45, -31.75) -> (-44.45, 31.75)
  line L1 (44.45, -31.75) -> (-44.45, 31.75) construction
  line L2 (-44.45, -31.75) -> (44.45, 31.75) construction
  line L3 (-50.7374, 37.719) -> (47.625, 37.719) projected
  line L4 (0, 37.719) -> (-12.7, 37.719)
  line L5 (-12.7, 37.719) -> (0, 37.719)
  line L6 (0, 37.719) -> (0, 25.019)
  line L7 (0, 25.019) -> (0, 37.719)
  line L8 (47.625, 37.719) -> (47.625, -37.719) projected
  line L9 (47.625, 0) -> (34.925, 0)
  line L10 (34.925, 0) -> (47.625, 0)
  line L11 (47.625, 0) -> (34.925, 0)
  line L12 (47.625, 0) -> (34.925, 0)
  line L13 (47.625, 0) -> (34.925, 0)
  line L14 (47.625, 0) -> (34.925, 0)
  line L15 (28.575, 63.5) -> (49.2125, 49.2125)
  line L16 (49.2125, 49.2125) -> (34.925, 72.6722)
  line L17 (34.925, 72.6722) -> (28.575, 63.5)
  line L18 (34.925, 0) -> (47.625, 0)
  line L19 (34.925, 0) -> (46.829, 0)
  line L20 (34.925, 0) -> (47.625, 0)
  line L21 (34.925, 0) -> (45.6543, -4.5983)
  line L22 (45.6543, -4.5983) -> (47.625, 0)
  line L23 (34.925, 0) -> (47.625, 0)
  line L24 (-34.925, -24.9464) -> (34.925, -24.9464)
  line L25 (34.925, -24.9464) -> (34.925, 24.9464)
  line L26 (34.925, 24.9464) -> (-34.925, 24.9464)
  line L27 (-34.925, 24.9464) -> (-34.925, -24.9464)
  line L28 (-34.925, -24.9464) -> (34.925, 24.9464) construction
  line L29 (34.925, -24.9464) -> (-34.925, 24.9464) construction
  point P0 (0, 0)
  dimension "d79" = 12.7
  dimension "d80" = 12.7
extrude "Extrusion23" [suppressed]
sketch "Sketch30" plane through (0, 0, 0) normal (0, 1, 0) x (1, 0, 0)
  line L0 (-50.7374, 37.719) -> (47.625, 37.719) projected
  line L1 (0, 37.719) -> (0, 25.0199)
  line L2 (0, 25.0199) -> (0, 37.719)
  line L3 (47.625, 0) -> (34.925, 0)
  line L4 (34.925, 0) -> (47.625, 0)
  line L5 (-34.925, -25.0199) -> (34.925, -25.0199)
  line L6 (34.925, -25.0199) -> (34.925, 25.0199)
  line L7 (34.925, 25.0199) -> (-34.925, 25.0199)
  line L8 (-34.925, 25.0199) -> (-34.925, -25.0199)
  line L9 (-34.925, -25.0199) -> (34.925, 25.0199) construction
  line L10 (34.925, -25.0199) -> (-34.925, 25.0199) construction
  point P0 (0, 0)
extrude "Extrusion24" cut sketch "Sketch30" against normal blind 154.7622
sketch "Sketch31" plane through (50.8, 3.175, -34.544) normal (-1, 0, 0) x (0, 0, 1)
  line L0 (3.175, 38.1) -> (0, 38.1)
  line L1 (0, 38.1) -> (14.2875, 38.1)
  point P0 (34.544, -3.175)
sketch "Sketch32" plane through (50.8, 3.175, -34.544) normal (-1, 0, 0) x (0, 0, 1)
  line L0 (69.088, 65.405) -> (69.088, 0) projected
  line L1 (69.088, 36.2333) -> (58.7375, 36.5125)
  line L2 (58.7375, 36.5125) -> (69.088, 36.2333)
  line L3 (58.7375, 53.975) -> (14.2875, 53.975)
  line L4 (14.2875, 53.975) -> (14.2875, 9.525)
  line L5 (14.2875, 9.525) -> (58.7375, 9.525)
  line L6 (58.7375, 9.525) -> (58.7375, 53.975)
  line L7 (58.7375, 53.975) -> (14.2875, 9.525) construction
  line L8 (14.2875, 53.975) -> (58.7375, 9.525) construction
  point P0 (34.544, -3.175)
  point P1 (36.5125, 31.75)
extrude "Extrusion25" cut sketch "Sketch32" against normal blind 154.7622
properties part number "Boxpt1"
